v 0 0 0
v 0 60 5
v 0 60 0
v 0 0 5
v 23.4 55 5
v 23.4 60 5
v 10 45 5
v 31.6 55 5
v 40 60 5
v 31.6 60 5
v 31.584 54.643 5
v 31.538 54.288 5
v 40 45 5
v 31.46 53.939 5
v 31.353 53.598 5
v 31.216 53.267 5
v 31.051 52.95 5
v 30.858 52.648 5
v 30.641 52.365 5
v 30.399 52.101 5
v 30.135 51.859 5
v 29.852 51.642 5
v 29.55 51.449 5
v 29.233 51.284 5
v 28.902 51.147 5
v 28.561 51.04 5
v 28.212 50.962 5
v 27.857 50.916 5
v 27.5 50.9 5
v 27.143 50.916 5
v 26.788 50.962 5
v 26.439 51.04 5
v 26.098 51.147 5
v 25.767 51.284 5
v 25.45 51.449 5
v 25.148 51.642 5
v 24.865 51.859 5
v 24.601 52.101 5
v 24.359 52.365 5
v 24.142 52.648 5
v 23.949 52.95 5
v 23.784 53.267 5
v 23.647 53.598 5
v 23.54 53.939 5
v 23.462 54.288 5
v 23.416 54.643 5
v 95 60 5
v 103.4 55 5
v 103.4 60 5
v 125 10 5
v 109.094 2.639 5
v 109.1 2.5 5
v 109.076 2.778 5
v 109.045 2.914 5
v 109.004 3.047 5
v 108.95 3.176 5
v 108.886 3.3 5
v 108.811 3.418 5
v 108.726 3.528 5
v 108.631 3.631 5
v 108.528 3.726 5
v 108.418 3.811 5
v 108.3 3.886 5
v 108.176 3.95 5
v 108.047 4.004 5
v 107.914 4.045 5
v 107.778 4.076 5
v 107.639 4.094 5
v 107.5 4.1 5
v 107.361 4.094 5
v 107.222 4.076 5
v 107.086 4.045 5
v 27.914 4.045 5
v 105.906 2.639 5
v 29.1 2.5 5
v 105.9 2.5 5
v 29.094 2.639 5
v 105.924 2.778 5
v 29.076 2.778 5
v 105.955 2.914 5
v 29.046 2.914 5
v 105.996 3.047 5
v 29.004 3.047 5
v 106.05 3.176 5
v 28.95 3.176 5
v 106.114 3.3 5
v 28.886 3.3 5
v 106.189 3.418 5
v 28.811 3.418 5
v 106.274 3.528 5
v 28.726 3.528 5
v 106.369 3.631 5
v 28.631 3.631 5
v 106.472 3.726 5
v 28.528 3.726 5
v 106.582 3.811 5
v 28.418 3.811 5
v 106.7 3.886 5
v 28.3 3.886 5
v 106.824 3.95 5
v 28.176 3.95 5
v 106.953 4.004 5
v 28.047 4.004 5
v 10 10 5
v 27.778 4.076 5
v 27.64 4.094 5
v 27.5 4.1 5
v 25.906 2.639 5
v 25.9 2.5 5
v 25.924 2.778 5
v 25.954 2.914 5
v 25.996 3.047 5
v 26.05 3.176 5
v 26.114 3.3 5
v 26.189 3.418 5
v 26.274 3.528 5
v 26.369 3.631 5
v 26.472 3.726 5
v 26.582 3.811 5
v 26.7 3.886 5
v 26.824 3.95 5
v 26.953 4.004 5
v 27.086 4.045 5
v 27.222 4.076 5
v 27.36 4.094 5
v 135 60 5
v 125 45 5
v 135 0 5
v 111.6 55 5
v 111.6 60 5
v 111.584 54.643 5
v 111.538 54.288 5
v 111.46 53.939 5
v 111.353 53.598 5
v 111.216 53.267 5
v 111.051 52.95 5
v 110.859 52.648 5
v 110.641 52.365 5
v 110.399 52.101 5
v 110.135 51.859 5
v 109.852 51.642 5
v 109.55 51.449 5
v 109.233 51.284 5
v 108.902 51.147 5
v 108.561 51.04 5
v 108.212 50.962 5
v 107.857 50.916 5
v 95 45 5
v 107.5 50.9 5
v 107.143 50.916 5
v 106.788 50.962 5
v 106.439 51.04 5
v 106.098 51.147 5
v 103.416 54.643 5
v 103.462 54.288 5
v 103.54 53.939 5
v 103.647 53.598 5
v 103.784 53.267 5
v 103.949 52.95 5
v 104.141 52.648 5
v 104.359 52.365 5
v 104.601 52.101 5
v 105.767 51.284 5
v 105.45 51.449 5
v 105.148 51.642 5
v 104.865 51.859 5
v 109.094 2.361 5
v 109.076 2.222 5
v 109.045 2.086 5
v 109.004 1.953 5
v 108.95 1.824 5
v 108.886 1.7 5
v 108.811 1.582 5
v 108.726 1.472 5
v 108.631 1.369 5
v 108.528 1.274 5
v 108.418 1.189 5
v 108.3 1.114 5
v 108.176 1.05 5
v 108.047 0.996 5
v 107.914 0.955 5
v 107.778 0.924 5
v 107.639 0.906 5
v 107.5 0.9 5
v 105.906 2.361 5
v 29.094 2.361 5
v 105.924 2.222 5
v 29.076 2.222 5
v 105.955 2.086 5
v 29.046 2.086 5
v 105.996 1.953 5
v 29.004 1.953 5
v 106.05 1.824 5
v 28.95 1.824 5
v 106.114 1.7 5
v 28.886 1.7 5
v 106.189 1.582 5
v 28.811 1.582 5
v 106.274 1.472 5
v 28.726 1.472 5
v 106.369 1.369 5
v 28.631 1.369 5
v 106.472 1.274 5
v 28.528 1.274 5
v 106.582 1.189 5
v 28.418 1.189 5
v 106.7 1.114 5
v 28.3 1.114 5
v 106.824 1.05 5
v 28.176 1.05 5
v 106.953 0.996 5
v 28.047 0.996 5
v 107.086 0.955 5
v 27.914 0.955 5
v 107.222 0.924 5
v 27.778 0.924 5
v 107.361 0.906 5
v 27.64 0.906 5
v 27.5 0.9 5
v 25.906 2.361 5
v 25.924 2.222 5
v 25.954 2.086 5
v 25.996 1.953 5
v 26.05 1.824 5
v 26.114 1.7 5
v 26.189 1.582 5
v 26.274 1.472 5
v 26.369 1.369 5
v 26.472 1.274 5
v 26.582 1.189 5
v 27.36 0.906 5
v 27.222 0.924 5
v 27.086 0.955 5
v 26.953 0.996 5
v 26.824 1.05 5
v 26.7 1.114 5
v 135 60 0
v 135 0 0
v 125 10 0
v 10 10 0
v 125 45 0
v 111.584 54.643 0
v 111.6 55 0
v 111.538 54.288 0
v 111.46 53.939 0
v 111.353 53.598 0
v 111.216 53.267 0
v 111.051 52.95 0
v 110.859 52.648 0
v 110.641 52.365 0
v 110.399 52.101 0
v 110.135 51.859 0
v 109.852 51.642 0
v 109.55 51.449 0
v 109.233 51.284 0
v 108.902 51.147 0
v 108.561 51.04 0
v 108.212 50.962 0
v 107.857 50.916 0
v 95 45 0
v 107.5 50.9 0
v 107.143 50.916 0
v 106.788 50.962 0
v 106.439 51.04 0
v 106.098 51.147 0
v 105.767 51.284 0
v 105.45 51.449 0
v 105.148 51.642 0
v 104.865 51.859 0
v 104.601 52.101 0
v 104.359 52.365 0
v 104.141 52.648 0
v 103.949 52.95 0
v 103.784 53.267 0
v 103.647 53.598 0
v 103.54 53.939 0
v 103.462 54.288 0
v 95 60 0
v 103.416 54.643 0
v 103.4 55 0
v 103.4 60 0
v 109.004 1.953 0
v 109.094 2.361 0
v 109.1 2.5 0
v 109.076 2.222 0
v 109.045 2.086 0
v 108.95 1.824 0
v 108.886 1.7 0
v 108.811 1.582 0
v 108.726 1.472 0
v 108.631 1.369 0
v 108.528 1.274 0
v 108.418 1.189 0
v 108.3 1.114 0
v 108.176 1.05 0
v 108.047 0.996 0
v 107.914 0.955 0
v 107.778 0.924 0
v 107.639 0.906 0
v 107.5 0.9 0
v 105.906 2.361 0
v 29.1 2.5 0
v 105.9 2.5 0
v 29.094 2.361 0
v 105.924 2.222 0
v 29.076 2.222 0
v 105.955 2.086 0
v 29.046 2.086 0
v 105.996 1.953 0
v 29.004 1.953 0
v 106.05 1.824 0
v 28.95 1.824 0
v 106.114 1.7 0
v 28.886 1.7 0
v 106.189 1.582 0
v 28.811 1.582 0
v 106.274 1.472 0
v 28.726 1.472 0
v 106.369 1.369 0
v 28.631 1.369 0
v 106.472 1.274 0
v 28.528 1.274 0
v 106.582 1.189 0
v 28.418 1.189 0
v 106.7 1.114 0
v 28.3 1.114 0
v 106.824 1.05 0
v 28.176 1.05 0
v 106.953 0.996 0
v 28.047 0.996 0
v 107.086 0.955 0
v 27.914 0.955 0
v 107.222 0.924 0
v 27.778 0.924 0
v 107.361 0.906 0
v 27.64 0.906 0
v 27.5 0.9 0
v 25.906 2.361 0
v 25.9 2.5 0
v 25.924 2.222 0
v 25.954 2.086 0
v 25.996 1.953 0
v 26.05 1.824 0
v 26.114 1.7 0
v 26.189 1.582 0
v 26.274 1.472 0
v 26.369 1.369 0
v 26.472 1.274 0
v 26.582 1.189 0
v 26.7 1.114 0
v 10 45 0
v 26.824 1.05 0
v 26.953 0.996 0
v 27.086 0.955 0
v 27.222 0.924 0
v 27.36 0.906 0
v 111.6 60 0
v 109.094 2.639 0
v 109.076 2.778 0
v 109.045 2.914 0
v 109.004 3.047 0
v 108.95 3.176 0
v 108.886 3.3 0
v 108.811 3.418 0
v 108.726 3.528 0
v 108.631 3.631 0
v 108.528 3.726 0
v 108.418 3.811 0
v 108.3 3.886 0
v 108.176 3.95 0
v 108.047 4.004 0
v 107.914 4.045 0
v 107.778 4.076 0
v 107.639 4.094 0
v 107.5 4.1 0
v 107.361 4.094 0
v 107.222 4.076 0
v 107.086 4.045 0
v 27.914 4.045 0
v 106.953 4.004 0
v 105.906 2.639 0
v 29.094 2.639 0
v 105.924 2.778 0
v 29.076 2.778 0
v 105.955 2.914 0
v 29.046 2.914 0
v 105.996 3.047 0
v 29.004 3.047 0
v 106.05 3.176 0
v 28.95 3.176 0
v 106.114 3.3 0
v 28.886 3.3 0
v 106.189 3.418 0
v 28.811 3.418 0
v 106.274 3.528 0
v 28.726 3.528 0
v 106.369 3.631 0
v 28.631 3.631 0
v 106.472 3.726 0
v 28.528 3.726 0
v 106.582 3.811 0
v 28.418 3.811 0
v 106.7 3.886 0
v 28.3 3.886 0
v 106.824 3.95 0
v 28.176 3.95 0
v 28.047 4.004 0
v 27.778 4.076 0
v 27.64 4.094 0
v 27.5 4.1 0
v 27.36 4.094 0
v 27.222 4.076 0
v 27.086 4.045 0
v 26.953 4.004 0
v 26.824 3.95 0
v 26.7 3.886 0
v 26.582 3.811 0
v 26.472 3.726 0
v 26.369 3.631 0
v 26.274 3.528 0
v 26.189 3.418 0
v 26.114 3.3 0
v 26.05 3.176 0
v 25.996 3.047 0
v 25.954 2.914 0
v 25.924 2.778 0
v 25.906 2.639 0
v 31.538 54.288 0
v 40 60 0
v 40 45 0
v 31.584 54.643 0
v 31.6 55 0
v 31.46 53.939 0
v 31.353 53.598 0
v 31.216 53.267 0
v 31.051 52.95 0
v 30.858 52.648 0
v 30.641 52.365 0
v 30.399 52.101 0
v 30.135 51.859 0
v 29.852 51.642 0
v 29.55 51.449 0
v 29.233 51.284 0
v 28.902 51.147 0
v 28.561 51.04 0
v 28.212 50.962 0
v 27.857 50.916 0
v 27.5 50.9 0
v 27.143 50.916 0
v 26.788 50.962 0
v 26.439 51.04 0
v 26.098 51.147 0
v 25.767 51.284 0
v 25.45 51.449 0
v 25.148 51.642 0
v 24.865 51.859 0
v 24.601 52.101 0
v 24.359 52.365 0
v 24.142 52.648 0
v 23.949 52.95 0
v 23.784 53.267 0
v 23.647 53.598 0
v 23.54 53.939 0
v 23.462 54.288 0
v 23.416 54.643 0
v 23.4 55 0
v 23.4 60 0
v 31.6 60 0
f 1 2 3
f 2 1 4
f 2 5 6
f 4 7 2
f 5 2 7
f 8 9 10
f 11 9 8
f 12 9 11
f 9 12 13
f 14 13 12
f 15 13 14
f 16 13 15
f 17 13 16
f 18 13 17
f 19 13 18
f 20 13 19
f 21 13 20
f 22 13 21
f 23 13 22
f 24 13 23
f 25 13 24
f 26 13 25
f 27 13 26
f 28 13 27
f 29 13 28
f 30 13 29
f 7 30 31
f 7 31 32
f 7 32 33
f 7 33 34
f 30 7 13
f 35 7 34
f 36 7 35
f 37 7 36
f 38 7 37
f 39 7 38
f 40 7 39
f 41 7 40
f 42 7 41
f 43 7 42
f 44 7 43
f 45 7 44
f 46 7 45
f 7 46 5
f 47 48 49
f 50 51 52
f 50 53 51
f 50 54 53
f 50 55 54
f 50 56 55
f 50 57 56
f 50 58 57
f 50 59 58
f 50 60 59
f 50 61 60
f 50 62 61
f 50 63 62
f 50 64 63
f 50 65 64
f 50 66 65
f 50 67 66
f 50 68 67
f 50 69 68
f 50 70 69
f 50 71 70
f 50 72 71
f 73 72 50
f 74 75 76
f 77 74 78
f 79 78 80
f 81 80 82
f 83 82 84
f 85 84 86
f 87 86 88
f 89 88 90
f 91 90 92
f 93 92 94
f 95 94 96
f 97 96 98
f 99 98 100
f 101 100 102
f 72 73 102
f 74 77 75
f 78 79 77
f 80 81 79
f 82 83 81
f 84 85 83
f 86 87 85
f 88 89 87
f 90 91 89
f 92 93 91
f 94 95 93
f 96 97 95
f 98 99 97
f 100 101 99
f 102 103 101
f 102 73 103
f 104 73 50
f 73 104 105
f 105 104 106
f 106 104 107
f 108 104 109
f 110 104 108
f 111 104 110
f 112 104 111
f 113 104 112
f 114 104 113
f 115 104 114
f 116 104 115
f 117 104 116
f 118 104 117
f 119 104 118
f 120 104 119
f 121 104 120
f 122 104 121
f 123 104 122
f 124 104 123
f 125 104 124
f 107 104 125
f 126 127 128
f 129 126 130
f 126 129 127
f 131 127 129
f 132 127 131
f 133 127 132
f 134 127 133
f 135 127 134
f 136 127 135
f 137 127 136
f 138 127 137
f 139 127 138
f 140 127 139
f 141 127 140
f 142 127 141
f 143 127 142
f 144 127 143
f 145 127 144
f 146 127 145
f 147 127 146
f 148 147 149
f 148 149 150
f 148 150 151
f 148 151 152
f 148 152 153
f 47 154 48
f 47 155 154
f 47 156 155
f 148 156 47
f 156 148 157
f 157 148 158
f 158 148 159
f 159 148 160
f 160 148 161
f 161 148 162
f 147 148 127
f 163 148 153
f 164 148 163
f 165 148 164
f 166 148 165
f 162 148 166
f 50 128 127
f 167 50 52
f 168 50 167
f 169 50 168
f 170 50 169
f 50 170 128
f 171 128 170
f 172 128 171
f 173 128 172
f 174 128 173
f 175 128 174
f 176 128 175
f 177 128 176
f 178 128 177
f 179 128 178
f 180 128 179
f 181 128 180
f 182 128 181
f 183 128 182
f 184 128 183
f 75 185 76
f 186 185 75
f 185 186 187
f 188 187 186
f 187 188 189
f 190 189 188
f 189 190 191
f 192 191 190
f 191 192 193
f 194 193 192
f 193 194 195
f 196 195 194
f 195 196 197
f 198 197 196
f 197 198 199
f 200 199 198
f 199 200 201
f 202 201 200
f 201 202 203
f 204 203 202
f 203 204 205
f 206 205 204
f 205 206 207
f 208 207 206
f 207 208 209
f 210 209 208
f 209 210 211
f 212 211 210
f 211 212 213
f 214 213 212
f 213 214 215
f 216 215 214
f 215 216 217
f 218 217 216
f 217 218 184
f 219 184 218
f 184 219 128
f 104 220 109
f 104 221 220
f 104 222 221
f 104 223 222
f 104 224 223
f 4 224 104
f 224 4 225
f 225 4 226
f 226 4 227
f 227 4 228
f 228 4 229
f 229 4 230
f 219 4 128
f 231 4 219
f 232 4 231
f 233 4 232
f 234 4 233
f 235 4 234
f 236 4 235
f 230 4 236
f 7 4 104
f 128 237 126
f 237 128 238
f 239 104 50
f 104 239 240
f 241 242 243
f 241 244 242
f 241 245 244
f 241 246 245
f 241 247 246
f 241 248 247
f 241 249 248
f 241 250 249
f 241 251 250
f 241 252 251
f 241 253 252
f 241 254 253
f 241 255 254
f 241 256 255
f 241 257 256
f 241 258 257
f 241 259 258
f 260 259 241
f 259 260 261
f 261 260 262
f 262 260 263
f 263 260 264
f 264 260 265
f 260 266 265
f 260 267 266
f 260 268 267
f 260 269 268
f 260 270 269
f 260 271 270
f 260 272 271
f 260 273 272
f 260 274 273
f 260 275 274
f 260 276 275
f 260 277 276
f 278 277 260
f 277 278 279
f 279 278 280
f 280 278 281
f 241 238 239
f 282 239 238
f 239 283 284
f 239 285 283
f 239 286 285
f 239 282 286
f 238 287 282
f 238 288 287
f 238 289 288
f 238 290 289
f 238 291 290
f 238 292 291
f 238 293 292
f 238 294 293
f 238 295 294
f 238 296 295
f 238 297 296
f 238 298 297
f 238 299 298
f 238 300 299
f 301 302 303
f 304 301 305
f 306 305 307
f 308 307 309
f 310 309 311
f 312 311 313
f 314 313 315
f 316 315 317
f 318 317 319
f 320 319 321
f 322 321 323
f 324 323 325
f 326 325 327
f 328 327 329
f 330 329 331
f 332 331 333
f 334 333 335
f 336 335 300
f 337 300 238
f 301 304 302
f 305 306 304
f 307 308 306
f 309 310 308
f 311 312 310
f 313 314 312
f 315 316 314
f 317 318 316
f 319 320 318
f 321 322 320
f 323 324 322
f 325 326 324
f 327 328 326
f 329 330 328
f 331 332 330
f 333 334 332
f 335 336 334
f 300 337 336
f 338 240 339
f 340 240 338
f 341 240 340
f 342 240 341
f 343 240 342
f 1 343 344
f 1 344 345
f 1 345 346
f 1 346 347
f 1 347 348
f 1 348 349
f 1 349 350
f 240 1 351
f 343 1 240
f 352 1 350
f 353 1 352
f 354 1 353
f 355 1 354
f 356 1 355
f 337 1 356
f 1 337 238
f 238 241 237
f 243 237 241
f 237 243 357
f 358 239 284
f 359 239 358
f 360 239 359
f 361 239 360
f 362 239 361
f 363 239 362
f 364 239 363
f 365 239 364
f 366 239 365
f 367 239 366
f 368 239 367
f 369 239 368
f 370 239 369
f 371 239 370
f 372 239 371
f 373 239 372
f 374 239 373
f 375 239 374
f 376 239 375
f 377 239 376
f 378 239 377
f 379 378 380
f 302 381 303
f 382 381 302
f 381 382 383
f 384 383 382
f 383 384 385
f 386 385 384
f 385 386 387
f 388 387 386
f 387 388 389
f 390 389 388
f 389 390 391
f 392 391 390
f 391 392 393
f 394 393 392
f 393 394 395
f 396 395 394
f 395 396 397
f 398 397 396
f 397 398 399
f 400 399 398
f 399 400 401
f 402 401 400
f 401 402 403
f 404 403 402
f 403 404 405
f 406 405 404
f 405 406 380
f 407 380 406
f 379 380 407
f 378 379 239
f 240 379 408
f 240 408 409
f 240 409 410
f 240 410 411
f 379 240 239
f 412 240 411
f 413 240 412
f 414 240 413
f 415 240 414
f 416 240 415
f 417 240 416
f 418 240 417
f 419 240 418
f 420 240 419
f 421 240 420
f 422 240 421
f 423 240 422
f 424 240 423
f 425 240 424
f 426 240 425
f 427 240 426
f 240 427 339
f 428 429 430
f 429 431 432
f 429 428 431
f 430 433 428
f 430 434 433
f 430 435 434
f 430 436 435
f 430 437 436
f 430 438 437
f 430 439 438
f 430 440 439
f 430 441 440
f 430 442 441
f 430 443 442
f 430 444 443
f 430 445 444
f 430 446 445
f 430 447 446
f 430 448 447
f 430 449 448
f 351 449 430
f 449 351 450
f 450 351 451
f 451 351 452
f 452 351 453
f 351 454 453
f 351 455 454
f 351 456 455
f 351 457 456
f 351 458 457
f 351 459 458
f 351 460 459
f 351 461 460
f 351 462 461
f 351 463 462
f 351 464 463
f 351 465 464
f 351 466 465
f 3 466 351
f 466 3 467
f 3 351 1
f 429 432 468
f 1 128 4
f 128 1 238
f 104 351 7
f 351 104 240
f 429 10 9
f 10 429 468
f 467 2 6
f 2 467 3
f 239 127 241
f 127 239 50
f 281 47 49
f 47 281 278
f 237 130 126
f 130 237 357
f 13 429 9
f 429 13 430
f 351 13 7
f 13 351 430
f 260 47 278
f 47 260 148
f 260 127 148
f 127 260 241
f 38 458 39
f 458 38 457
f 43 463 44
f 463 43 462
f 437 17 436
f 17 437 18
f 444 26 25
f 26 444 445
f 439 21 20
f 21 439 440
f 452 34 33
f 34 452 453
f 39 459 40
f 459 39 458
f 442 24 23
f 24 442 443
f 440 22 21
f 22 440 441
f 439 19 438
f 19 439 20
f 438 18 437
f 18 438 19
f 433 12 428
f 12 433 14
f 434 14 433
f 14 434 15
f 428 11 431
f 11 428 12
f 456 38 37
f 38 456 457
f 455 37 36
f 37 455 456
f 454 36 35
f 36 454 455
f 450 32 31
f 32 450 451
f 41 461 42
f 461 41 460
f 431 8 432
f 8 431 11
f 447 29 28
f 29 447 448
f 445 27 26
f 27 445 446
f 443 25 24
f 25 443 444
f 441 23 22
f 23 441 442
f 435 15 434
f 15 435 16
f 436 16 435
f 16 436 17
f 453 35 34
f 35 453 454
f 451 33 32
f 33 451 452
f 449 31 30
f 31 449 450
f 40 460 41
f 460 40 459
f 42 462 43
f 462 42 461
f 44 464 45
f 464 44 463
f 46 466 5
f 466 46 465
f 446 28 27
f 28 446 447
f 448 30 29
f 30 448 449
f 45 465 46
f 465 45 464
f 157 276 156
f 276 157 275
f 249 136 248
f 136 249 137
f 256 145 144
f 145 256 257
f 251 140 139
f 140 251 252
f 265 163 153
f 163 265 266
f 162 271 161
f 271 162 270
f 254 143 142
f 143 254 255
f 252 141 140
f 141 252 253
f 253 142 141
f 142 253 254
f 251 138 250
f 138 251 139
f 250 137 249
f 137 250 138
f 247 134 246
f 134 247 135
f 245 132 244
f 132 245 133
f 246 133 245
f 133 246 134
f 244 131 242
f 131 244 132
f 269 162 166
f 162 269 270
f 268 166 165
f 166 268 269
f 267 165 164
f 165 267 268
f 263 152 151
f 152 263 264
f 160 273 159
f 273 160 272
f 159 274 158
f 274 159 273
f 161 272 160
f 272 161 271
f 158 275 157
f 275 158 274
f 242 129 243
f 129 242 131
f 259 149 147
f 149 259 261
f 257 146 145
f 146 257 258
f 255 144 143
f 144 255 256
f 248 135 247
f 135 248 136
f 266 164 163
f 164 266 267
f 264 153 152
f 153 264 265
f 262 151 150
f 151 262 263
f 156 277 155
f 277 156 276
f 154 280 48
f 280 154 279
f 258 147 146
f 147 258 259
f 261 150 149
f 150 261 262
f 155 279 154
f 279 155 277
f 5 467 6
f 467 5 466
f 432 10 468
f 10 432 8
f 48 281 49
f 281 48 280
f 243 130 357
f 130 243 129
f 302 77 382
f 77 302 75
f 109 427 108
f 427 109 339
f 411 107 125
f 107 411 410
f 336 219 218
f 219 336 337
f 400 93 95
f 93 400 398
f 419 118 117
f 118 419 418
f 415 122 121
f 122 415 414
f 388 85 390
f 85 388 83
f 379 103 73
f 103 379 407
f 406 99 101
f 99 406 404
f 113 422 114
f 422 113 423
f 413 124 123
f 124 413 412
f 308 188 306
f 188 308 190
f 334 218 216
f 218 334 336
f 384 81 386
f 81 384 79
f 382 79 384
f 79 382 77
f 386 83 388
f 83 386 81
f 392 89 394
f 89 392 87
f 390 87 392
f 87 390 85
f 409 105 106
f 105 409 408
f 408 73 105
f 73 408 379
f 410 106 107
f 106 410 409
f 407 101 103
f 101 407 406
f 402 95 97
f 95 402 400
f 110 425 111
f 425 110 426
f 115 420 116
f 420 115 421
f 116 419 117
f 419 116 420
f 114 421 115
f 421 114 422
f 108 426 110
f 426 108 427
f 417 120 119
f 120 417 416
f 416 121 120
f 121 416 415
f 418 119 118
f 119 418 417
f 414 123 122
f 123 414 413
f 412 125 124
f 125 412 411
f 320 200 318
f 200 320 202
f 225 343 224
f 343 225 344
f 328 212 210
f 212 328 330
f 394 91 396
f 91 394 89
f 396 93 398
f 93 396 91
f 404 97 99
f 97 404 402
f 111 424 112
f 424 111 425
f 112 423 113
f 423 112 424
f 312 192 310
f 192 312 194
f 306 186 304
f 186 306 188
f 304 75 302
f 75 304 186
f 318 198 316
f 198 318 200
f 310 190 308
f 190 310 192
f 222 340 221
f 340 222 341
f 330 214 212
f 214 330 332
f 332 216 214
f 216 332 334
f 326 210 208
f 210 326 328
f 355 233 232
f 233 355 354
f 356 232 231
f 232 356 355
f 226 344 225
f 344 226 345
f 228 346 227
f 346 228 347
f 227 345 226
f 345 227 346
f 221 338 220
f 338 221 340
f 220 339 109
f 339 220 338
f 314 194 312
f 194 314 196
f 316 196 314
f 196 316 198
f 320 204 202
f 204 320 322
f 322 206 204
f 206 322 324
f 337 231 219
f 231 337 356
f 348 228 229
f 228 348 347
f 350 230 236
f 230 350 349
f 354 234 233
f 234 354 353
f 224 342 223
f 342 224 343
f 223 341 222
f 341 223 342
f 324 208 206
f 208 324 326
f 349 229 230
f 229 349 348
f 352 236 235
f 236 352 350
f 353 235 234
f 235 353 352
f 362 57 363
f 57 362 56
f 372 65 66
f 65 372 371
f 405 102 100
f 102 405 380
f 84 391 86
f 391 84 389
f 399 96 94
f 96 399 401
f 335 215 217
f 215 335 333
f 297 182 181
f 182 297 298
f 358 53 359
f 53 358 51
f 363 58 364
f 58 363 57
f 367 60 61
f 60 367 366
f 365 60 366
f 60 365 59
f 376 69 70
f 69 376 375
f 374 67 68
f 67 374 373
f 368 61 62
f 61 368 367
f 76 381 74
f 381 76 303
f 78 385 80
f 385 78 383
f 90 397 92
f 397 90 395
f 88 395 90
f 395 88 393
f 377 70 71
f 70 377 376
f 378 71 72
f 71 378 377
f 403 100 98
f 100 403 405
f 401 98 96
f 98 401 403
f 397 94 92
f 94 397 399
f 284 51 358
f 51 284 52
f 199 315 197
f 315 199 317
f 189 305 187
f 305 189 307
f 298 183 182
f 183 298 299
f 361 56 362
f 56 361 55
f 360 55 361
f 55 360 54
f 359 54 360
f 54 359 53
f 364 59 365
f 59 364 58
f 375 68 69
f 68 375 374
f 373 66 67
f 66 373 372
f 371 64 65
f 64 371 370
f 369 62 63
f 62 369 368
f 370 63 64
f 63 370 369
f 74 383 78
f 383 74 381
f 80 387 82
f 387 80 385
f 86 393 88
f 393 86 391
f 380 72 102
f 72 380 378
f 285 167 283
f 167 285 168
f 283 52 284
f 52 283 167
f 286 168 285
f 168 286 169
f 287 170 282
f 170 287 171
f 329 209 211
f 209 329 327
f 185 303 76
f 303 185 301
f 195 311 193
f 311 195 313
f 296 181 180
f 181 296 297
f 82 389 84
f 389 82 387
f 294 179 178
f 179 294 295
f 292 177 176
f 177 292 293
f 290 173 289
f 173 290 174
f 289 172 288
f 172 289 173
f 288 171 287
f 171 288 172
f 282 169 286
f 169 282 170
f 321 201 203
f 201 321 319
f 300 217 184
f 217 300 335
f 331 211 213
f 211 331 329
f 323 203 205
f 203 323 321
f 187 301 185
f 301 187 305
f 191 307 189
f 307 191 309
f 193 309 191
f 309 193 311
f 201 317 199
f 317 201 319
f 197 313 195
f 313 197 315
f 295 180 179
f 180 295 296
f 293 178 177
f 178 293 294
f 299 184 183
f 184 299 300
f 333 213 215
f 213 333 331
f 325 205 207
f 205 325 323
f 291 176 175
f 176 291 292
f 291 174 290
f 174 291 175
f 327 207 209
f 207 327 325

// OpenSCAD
difference(){
    
    union(){
        cube([135,10,5]);
        
        translate([0,10,0])
            cube([10,50,5]);

        translate([125,10,0])
            cube([10,50,5]);
    
        translate([10,45,0])
            cube([30,15,5]);
    
        translate([95,45,0])
            cube([30,15,5]);
    }
    
    
    {
     translate([27.5, 55, 2.5]){
        cylinder(h=5.01, r=4.1, $fa=5, $fs=0.1, center=true);
        
        translate([80, 0, 0])
         cylinder(h=5.01, r=4.1, $fa=5, $fs=0.1, center=true);}
     
     translate([23.4, 55, -0.01]){
        cube([8.2, 5.01, 5.02]);
        
        translate([80, 0, 0])
         cube([8.2, 5.01, 5.02]);}
         
     translate([27.5, 2.5, 2.5]){
         cylinder(h=5.01, r=1.6, $fa=5, $fs=0.1, center=true);
         
         translate([80, 0, 0])
          cylinder(h=5.01, r=1.6, $fa=5, $fs=0.1, center=true);}
         
    }
}
    
